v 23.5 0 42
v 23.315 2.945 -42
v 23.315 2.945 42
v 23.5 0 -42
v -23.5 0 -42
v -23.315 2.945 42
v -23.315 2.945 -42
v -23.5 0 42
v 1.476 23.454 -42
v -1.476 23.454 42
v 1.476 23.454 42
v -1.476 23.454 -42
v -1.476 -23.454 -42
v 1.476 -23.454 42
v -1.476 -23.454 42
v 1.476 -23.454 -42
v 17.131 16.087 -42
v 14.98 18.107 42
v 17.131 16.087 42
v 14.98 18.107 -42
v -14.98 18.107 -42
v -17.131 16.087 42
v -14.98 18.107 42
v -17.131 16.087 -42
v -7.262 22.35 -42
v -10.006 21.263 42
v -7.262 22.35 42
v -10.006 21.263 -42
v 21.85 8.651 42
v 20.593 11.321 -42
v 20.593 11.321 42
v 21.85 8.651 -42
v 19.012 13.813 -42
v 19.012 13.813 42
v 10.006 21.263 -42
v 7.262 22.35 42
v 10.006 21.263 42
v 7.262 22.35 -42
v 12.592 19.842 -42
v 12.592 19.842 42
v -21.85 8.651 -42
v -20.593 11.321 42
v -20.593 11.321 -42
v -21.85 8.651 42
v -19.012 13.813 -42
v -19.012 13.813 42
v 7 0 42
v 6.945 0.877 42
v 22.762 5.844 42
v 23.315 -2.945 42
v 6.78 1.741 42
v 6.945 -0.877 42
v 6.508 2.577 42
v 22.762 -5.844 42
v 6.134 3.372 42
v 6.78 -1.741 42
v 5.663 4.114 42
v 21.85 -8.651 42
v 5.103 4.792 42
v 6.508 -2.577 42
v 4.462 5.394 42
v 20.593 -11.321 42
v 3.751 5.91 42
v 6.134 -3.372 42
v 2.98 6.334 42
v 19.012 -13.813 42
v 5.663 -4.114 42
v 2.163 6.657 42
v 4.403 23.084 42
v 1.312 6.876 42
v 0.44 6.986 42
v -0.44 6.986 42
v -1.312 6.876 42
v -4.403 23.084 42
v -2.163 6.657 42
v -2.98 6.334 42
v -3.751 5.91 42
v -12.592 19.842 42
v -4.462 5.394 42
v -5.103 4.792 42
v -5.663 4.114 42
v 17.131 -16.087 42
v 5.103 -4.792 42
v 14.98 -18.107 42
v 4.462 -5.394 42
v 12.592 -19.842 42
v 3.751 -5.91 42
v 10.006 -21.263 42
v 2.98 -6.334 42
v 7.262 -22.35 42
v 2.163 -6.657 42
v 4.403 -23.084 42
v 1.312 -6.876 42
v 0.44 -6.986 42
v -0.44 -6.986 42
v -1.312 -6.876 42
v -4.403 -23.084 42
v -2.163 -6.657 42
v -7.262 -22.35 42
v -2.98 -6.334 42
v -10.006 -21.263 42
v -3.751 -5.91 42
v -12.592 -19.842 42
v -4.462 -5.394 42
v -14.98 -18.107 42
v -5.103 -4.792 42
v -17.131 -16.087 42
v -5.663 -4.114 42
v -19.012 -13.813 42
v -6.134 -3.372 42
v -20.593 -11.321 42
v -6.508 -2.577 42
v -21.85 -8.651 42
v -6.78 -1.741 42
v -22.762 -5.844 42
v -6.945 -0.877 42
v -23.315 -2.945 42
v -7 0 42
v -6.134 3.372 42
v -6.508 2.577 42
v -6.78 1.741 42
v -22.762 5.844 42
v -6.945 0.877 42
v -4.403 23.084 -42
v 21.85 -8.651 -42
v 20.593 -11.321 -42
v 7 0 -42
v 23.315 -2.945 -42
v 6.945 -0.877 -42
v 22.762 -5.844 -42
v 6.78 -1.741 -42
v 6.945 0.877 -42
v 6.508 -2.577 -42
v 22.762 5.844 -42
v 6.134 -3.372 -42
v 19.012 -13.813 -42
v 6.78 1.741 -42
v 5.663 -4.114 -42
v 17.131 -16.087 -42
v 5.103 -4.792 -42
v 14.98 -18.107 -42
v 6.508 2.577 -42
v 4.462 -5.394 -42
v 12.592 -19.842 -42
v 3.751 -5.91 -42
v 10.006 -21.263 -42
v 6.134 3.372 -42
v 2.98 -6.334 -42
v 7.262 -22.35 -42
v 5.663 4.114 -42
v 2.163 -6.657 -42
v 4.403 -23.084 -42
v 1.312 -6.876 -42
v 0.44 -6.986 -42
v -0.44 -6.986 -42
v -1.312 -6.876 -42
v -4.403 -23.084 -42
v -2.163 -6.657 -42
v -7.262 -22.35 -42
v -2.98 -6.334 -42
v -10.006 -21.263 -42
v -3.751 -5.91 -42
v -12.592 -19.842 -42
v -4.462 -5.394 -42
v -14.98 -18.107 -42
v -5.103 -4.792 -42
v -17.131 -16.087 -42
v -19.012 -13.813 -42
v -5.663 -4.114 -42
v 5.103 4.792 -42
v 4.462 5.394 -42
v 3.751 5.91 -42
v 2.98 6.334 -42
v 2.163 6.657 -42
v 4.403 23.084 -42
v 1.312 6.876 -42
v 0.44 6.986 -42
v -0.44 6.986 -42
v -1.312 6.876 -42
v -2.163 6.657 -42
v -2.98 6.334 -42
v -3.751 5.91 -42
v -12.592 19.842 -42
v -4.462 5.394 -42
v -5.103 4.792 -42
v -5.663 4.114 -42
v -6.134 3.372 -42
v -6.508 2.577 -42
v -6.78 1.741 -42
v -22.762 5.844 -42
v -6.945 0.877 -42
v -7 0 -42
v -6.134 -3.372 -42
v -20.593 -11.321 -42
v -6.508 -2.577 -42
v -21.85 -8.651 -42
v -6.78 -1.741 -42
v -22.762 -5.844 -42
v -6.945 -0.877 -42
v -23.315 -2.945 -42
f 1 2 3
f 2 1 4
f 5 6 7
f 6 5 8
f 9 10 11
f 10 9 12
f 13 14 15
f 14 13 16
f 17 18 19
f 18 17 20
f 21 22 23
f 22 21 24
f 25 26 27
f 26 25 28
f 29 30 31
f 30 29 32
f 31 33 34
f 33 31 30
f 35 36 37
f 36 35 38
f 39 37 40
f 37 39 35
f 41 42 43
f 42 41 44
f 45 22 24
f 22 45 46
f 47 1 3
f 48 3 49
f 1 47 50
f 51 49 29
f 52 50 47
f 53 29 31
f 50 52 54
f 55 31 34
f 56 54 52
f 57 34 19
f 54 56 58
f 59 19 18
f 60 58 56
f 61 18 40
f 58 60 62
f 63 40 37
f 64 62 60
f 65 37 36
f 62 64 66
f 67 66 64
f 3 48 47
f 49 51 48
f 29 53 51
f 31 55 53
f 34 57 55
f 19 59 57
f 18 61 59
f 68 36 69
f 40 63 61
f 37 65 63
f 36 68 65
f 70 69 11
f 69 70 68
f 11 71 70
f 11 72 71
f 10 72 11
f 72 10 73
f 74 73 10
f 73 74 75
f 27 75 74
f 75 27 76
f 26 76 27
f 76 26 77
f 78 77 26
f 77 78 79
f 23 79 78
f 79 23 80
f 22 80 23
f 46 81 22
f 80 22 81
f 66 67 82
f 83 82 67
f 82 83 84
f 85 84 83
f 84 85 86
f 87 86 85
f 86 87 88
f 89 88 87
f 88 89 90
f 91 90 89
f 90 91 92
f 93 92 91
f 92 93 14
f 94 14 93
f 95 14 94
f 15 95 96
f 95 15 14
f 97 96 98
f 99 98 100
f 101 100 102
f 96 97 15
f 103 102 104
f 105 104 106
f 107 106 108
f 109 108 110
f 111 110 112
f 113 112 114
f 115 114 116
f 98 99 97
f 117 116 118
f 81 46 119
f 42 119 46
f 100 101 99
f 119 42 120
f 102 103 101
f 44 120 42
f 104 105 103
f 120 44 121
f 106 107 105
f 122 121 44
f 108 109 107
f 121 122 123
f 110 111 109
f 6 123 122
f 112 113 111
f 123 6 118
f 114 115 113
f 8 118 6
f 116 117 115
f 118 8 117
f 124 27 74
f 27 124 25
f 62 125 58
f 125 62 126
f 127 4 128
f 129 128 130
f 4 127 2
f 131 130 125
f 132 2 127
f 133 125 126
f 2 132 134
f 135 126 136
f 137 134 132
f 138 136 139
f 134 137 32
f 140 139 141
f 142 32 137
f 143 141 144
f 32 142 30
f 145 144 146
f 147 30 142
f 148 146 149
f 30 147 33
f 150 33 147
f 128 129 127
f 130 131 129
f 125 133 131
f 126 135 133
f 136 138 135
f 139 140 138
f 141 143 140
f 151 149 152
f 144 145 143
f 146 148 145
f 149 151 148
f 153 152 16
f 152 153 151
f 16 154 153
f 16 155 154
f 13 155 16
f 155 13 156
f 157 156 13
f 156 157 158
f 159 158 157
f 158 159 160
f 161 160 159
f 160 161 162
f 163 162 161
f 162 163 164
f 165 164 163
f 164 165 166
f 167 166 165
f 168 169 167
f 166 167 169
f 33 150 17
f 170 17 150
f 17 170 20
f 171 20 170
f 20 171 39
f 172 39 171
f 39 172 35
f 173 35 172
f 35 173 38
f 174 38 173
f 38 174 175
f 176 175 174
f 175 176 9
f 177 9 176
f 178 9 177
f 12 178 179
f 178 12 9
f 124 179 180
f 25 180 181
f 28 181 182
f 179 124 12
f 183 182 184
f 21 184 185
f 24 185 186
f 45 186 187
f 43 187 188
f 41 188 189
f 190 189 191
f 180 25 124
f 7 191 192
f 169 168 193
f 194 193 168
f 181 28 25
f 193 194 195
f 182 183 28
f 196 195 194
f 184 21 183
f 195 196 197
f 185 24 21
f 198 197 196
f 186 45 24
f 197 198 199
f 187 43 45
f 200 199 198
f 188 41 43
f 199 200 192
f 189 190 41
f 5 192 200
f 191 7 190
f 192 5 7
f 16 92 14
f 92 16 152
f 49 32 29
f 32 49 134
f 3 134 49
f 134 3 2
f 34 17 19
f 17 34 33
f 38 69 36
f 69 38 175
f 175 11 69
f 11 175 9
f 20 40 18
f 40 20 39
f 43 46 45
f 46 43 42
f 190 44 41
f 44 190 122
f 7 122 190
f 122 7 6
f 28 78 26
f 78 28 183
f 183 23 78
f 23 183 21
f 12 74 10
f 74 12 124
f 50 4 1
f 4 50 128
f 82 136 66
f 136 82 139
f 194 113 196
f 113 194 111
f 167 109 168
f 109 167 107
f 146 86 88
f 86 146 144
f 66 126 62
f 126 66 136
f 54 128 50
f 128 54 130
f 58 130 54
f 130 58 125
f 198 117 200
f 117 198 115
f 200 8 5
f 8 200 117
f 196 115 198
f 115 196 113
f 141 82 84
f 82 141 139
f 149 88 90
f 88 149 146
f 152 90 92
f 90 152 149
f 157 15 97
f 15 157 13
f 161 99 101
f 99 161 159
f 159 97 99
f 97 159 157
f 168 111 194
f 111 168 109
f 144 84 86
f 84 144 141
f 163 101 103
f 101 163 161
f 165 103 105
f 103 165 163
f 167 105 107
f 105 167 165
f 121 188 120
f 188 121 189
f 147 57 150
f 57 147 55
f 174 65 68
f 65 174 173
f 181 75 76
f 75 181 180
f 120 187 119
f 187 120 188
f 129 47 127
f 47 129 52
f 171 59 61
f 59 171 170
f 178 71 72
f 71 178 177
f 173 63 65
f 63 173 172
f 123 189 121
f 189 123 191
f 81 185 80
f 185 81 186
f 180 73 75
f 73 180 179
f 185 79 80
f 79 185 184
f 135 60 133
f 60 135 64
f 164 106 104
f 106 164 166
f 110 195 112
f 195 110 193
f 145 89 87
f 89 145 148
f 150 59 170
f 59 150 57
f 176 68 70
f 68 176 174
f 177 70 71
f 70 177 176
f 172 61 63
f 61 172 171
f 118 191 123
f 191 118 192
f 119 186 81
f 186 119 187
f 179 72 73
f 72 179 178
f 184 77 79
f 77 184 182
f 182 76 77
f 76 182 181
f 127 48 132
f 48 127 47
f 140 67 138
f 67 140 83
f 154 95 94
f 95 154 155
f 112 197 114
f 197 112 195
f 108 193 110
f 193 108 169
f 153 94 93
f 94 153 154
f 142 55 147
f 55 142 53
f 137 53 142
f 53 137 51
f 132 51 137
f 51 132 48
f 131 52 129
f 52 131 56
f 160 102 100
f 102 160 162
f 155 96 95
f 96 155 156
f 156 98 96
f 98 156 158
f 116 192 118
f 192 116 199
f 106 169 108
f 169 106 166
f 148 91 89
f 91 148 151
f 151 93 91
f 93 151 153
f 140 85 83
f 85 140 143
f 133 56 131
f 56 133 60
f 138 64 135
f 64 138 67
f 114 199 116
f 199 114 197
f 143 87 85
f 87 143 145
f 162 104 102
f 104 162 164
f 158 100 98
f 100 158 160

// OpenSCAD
$fn = 50;


difference() {
	union() {
		translate(v = [0, 0, -42.0000000000]) {
			cylinder(h = 84, r = 23.5000000000);
		}
	}
	union() {
		translate(v = [0, 0, -100.0000000000]) {
			cylinder(h = 200, r = 7);
		}
	}
}
